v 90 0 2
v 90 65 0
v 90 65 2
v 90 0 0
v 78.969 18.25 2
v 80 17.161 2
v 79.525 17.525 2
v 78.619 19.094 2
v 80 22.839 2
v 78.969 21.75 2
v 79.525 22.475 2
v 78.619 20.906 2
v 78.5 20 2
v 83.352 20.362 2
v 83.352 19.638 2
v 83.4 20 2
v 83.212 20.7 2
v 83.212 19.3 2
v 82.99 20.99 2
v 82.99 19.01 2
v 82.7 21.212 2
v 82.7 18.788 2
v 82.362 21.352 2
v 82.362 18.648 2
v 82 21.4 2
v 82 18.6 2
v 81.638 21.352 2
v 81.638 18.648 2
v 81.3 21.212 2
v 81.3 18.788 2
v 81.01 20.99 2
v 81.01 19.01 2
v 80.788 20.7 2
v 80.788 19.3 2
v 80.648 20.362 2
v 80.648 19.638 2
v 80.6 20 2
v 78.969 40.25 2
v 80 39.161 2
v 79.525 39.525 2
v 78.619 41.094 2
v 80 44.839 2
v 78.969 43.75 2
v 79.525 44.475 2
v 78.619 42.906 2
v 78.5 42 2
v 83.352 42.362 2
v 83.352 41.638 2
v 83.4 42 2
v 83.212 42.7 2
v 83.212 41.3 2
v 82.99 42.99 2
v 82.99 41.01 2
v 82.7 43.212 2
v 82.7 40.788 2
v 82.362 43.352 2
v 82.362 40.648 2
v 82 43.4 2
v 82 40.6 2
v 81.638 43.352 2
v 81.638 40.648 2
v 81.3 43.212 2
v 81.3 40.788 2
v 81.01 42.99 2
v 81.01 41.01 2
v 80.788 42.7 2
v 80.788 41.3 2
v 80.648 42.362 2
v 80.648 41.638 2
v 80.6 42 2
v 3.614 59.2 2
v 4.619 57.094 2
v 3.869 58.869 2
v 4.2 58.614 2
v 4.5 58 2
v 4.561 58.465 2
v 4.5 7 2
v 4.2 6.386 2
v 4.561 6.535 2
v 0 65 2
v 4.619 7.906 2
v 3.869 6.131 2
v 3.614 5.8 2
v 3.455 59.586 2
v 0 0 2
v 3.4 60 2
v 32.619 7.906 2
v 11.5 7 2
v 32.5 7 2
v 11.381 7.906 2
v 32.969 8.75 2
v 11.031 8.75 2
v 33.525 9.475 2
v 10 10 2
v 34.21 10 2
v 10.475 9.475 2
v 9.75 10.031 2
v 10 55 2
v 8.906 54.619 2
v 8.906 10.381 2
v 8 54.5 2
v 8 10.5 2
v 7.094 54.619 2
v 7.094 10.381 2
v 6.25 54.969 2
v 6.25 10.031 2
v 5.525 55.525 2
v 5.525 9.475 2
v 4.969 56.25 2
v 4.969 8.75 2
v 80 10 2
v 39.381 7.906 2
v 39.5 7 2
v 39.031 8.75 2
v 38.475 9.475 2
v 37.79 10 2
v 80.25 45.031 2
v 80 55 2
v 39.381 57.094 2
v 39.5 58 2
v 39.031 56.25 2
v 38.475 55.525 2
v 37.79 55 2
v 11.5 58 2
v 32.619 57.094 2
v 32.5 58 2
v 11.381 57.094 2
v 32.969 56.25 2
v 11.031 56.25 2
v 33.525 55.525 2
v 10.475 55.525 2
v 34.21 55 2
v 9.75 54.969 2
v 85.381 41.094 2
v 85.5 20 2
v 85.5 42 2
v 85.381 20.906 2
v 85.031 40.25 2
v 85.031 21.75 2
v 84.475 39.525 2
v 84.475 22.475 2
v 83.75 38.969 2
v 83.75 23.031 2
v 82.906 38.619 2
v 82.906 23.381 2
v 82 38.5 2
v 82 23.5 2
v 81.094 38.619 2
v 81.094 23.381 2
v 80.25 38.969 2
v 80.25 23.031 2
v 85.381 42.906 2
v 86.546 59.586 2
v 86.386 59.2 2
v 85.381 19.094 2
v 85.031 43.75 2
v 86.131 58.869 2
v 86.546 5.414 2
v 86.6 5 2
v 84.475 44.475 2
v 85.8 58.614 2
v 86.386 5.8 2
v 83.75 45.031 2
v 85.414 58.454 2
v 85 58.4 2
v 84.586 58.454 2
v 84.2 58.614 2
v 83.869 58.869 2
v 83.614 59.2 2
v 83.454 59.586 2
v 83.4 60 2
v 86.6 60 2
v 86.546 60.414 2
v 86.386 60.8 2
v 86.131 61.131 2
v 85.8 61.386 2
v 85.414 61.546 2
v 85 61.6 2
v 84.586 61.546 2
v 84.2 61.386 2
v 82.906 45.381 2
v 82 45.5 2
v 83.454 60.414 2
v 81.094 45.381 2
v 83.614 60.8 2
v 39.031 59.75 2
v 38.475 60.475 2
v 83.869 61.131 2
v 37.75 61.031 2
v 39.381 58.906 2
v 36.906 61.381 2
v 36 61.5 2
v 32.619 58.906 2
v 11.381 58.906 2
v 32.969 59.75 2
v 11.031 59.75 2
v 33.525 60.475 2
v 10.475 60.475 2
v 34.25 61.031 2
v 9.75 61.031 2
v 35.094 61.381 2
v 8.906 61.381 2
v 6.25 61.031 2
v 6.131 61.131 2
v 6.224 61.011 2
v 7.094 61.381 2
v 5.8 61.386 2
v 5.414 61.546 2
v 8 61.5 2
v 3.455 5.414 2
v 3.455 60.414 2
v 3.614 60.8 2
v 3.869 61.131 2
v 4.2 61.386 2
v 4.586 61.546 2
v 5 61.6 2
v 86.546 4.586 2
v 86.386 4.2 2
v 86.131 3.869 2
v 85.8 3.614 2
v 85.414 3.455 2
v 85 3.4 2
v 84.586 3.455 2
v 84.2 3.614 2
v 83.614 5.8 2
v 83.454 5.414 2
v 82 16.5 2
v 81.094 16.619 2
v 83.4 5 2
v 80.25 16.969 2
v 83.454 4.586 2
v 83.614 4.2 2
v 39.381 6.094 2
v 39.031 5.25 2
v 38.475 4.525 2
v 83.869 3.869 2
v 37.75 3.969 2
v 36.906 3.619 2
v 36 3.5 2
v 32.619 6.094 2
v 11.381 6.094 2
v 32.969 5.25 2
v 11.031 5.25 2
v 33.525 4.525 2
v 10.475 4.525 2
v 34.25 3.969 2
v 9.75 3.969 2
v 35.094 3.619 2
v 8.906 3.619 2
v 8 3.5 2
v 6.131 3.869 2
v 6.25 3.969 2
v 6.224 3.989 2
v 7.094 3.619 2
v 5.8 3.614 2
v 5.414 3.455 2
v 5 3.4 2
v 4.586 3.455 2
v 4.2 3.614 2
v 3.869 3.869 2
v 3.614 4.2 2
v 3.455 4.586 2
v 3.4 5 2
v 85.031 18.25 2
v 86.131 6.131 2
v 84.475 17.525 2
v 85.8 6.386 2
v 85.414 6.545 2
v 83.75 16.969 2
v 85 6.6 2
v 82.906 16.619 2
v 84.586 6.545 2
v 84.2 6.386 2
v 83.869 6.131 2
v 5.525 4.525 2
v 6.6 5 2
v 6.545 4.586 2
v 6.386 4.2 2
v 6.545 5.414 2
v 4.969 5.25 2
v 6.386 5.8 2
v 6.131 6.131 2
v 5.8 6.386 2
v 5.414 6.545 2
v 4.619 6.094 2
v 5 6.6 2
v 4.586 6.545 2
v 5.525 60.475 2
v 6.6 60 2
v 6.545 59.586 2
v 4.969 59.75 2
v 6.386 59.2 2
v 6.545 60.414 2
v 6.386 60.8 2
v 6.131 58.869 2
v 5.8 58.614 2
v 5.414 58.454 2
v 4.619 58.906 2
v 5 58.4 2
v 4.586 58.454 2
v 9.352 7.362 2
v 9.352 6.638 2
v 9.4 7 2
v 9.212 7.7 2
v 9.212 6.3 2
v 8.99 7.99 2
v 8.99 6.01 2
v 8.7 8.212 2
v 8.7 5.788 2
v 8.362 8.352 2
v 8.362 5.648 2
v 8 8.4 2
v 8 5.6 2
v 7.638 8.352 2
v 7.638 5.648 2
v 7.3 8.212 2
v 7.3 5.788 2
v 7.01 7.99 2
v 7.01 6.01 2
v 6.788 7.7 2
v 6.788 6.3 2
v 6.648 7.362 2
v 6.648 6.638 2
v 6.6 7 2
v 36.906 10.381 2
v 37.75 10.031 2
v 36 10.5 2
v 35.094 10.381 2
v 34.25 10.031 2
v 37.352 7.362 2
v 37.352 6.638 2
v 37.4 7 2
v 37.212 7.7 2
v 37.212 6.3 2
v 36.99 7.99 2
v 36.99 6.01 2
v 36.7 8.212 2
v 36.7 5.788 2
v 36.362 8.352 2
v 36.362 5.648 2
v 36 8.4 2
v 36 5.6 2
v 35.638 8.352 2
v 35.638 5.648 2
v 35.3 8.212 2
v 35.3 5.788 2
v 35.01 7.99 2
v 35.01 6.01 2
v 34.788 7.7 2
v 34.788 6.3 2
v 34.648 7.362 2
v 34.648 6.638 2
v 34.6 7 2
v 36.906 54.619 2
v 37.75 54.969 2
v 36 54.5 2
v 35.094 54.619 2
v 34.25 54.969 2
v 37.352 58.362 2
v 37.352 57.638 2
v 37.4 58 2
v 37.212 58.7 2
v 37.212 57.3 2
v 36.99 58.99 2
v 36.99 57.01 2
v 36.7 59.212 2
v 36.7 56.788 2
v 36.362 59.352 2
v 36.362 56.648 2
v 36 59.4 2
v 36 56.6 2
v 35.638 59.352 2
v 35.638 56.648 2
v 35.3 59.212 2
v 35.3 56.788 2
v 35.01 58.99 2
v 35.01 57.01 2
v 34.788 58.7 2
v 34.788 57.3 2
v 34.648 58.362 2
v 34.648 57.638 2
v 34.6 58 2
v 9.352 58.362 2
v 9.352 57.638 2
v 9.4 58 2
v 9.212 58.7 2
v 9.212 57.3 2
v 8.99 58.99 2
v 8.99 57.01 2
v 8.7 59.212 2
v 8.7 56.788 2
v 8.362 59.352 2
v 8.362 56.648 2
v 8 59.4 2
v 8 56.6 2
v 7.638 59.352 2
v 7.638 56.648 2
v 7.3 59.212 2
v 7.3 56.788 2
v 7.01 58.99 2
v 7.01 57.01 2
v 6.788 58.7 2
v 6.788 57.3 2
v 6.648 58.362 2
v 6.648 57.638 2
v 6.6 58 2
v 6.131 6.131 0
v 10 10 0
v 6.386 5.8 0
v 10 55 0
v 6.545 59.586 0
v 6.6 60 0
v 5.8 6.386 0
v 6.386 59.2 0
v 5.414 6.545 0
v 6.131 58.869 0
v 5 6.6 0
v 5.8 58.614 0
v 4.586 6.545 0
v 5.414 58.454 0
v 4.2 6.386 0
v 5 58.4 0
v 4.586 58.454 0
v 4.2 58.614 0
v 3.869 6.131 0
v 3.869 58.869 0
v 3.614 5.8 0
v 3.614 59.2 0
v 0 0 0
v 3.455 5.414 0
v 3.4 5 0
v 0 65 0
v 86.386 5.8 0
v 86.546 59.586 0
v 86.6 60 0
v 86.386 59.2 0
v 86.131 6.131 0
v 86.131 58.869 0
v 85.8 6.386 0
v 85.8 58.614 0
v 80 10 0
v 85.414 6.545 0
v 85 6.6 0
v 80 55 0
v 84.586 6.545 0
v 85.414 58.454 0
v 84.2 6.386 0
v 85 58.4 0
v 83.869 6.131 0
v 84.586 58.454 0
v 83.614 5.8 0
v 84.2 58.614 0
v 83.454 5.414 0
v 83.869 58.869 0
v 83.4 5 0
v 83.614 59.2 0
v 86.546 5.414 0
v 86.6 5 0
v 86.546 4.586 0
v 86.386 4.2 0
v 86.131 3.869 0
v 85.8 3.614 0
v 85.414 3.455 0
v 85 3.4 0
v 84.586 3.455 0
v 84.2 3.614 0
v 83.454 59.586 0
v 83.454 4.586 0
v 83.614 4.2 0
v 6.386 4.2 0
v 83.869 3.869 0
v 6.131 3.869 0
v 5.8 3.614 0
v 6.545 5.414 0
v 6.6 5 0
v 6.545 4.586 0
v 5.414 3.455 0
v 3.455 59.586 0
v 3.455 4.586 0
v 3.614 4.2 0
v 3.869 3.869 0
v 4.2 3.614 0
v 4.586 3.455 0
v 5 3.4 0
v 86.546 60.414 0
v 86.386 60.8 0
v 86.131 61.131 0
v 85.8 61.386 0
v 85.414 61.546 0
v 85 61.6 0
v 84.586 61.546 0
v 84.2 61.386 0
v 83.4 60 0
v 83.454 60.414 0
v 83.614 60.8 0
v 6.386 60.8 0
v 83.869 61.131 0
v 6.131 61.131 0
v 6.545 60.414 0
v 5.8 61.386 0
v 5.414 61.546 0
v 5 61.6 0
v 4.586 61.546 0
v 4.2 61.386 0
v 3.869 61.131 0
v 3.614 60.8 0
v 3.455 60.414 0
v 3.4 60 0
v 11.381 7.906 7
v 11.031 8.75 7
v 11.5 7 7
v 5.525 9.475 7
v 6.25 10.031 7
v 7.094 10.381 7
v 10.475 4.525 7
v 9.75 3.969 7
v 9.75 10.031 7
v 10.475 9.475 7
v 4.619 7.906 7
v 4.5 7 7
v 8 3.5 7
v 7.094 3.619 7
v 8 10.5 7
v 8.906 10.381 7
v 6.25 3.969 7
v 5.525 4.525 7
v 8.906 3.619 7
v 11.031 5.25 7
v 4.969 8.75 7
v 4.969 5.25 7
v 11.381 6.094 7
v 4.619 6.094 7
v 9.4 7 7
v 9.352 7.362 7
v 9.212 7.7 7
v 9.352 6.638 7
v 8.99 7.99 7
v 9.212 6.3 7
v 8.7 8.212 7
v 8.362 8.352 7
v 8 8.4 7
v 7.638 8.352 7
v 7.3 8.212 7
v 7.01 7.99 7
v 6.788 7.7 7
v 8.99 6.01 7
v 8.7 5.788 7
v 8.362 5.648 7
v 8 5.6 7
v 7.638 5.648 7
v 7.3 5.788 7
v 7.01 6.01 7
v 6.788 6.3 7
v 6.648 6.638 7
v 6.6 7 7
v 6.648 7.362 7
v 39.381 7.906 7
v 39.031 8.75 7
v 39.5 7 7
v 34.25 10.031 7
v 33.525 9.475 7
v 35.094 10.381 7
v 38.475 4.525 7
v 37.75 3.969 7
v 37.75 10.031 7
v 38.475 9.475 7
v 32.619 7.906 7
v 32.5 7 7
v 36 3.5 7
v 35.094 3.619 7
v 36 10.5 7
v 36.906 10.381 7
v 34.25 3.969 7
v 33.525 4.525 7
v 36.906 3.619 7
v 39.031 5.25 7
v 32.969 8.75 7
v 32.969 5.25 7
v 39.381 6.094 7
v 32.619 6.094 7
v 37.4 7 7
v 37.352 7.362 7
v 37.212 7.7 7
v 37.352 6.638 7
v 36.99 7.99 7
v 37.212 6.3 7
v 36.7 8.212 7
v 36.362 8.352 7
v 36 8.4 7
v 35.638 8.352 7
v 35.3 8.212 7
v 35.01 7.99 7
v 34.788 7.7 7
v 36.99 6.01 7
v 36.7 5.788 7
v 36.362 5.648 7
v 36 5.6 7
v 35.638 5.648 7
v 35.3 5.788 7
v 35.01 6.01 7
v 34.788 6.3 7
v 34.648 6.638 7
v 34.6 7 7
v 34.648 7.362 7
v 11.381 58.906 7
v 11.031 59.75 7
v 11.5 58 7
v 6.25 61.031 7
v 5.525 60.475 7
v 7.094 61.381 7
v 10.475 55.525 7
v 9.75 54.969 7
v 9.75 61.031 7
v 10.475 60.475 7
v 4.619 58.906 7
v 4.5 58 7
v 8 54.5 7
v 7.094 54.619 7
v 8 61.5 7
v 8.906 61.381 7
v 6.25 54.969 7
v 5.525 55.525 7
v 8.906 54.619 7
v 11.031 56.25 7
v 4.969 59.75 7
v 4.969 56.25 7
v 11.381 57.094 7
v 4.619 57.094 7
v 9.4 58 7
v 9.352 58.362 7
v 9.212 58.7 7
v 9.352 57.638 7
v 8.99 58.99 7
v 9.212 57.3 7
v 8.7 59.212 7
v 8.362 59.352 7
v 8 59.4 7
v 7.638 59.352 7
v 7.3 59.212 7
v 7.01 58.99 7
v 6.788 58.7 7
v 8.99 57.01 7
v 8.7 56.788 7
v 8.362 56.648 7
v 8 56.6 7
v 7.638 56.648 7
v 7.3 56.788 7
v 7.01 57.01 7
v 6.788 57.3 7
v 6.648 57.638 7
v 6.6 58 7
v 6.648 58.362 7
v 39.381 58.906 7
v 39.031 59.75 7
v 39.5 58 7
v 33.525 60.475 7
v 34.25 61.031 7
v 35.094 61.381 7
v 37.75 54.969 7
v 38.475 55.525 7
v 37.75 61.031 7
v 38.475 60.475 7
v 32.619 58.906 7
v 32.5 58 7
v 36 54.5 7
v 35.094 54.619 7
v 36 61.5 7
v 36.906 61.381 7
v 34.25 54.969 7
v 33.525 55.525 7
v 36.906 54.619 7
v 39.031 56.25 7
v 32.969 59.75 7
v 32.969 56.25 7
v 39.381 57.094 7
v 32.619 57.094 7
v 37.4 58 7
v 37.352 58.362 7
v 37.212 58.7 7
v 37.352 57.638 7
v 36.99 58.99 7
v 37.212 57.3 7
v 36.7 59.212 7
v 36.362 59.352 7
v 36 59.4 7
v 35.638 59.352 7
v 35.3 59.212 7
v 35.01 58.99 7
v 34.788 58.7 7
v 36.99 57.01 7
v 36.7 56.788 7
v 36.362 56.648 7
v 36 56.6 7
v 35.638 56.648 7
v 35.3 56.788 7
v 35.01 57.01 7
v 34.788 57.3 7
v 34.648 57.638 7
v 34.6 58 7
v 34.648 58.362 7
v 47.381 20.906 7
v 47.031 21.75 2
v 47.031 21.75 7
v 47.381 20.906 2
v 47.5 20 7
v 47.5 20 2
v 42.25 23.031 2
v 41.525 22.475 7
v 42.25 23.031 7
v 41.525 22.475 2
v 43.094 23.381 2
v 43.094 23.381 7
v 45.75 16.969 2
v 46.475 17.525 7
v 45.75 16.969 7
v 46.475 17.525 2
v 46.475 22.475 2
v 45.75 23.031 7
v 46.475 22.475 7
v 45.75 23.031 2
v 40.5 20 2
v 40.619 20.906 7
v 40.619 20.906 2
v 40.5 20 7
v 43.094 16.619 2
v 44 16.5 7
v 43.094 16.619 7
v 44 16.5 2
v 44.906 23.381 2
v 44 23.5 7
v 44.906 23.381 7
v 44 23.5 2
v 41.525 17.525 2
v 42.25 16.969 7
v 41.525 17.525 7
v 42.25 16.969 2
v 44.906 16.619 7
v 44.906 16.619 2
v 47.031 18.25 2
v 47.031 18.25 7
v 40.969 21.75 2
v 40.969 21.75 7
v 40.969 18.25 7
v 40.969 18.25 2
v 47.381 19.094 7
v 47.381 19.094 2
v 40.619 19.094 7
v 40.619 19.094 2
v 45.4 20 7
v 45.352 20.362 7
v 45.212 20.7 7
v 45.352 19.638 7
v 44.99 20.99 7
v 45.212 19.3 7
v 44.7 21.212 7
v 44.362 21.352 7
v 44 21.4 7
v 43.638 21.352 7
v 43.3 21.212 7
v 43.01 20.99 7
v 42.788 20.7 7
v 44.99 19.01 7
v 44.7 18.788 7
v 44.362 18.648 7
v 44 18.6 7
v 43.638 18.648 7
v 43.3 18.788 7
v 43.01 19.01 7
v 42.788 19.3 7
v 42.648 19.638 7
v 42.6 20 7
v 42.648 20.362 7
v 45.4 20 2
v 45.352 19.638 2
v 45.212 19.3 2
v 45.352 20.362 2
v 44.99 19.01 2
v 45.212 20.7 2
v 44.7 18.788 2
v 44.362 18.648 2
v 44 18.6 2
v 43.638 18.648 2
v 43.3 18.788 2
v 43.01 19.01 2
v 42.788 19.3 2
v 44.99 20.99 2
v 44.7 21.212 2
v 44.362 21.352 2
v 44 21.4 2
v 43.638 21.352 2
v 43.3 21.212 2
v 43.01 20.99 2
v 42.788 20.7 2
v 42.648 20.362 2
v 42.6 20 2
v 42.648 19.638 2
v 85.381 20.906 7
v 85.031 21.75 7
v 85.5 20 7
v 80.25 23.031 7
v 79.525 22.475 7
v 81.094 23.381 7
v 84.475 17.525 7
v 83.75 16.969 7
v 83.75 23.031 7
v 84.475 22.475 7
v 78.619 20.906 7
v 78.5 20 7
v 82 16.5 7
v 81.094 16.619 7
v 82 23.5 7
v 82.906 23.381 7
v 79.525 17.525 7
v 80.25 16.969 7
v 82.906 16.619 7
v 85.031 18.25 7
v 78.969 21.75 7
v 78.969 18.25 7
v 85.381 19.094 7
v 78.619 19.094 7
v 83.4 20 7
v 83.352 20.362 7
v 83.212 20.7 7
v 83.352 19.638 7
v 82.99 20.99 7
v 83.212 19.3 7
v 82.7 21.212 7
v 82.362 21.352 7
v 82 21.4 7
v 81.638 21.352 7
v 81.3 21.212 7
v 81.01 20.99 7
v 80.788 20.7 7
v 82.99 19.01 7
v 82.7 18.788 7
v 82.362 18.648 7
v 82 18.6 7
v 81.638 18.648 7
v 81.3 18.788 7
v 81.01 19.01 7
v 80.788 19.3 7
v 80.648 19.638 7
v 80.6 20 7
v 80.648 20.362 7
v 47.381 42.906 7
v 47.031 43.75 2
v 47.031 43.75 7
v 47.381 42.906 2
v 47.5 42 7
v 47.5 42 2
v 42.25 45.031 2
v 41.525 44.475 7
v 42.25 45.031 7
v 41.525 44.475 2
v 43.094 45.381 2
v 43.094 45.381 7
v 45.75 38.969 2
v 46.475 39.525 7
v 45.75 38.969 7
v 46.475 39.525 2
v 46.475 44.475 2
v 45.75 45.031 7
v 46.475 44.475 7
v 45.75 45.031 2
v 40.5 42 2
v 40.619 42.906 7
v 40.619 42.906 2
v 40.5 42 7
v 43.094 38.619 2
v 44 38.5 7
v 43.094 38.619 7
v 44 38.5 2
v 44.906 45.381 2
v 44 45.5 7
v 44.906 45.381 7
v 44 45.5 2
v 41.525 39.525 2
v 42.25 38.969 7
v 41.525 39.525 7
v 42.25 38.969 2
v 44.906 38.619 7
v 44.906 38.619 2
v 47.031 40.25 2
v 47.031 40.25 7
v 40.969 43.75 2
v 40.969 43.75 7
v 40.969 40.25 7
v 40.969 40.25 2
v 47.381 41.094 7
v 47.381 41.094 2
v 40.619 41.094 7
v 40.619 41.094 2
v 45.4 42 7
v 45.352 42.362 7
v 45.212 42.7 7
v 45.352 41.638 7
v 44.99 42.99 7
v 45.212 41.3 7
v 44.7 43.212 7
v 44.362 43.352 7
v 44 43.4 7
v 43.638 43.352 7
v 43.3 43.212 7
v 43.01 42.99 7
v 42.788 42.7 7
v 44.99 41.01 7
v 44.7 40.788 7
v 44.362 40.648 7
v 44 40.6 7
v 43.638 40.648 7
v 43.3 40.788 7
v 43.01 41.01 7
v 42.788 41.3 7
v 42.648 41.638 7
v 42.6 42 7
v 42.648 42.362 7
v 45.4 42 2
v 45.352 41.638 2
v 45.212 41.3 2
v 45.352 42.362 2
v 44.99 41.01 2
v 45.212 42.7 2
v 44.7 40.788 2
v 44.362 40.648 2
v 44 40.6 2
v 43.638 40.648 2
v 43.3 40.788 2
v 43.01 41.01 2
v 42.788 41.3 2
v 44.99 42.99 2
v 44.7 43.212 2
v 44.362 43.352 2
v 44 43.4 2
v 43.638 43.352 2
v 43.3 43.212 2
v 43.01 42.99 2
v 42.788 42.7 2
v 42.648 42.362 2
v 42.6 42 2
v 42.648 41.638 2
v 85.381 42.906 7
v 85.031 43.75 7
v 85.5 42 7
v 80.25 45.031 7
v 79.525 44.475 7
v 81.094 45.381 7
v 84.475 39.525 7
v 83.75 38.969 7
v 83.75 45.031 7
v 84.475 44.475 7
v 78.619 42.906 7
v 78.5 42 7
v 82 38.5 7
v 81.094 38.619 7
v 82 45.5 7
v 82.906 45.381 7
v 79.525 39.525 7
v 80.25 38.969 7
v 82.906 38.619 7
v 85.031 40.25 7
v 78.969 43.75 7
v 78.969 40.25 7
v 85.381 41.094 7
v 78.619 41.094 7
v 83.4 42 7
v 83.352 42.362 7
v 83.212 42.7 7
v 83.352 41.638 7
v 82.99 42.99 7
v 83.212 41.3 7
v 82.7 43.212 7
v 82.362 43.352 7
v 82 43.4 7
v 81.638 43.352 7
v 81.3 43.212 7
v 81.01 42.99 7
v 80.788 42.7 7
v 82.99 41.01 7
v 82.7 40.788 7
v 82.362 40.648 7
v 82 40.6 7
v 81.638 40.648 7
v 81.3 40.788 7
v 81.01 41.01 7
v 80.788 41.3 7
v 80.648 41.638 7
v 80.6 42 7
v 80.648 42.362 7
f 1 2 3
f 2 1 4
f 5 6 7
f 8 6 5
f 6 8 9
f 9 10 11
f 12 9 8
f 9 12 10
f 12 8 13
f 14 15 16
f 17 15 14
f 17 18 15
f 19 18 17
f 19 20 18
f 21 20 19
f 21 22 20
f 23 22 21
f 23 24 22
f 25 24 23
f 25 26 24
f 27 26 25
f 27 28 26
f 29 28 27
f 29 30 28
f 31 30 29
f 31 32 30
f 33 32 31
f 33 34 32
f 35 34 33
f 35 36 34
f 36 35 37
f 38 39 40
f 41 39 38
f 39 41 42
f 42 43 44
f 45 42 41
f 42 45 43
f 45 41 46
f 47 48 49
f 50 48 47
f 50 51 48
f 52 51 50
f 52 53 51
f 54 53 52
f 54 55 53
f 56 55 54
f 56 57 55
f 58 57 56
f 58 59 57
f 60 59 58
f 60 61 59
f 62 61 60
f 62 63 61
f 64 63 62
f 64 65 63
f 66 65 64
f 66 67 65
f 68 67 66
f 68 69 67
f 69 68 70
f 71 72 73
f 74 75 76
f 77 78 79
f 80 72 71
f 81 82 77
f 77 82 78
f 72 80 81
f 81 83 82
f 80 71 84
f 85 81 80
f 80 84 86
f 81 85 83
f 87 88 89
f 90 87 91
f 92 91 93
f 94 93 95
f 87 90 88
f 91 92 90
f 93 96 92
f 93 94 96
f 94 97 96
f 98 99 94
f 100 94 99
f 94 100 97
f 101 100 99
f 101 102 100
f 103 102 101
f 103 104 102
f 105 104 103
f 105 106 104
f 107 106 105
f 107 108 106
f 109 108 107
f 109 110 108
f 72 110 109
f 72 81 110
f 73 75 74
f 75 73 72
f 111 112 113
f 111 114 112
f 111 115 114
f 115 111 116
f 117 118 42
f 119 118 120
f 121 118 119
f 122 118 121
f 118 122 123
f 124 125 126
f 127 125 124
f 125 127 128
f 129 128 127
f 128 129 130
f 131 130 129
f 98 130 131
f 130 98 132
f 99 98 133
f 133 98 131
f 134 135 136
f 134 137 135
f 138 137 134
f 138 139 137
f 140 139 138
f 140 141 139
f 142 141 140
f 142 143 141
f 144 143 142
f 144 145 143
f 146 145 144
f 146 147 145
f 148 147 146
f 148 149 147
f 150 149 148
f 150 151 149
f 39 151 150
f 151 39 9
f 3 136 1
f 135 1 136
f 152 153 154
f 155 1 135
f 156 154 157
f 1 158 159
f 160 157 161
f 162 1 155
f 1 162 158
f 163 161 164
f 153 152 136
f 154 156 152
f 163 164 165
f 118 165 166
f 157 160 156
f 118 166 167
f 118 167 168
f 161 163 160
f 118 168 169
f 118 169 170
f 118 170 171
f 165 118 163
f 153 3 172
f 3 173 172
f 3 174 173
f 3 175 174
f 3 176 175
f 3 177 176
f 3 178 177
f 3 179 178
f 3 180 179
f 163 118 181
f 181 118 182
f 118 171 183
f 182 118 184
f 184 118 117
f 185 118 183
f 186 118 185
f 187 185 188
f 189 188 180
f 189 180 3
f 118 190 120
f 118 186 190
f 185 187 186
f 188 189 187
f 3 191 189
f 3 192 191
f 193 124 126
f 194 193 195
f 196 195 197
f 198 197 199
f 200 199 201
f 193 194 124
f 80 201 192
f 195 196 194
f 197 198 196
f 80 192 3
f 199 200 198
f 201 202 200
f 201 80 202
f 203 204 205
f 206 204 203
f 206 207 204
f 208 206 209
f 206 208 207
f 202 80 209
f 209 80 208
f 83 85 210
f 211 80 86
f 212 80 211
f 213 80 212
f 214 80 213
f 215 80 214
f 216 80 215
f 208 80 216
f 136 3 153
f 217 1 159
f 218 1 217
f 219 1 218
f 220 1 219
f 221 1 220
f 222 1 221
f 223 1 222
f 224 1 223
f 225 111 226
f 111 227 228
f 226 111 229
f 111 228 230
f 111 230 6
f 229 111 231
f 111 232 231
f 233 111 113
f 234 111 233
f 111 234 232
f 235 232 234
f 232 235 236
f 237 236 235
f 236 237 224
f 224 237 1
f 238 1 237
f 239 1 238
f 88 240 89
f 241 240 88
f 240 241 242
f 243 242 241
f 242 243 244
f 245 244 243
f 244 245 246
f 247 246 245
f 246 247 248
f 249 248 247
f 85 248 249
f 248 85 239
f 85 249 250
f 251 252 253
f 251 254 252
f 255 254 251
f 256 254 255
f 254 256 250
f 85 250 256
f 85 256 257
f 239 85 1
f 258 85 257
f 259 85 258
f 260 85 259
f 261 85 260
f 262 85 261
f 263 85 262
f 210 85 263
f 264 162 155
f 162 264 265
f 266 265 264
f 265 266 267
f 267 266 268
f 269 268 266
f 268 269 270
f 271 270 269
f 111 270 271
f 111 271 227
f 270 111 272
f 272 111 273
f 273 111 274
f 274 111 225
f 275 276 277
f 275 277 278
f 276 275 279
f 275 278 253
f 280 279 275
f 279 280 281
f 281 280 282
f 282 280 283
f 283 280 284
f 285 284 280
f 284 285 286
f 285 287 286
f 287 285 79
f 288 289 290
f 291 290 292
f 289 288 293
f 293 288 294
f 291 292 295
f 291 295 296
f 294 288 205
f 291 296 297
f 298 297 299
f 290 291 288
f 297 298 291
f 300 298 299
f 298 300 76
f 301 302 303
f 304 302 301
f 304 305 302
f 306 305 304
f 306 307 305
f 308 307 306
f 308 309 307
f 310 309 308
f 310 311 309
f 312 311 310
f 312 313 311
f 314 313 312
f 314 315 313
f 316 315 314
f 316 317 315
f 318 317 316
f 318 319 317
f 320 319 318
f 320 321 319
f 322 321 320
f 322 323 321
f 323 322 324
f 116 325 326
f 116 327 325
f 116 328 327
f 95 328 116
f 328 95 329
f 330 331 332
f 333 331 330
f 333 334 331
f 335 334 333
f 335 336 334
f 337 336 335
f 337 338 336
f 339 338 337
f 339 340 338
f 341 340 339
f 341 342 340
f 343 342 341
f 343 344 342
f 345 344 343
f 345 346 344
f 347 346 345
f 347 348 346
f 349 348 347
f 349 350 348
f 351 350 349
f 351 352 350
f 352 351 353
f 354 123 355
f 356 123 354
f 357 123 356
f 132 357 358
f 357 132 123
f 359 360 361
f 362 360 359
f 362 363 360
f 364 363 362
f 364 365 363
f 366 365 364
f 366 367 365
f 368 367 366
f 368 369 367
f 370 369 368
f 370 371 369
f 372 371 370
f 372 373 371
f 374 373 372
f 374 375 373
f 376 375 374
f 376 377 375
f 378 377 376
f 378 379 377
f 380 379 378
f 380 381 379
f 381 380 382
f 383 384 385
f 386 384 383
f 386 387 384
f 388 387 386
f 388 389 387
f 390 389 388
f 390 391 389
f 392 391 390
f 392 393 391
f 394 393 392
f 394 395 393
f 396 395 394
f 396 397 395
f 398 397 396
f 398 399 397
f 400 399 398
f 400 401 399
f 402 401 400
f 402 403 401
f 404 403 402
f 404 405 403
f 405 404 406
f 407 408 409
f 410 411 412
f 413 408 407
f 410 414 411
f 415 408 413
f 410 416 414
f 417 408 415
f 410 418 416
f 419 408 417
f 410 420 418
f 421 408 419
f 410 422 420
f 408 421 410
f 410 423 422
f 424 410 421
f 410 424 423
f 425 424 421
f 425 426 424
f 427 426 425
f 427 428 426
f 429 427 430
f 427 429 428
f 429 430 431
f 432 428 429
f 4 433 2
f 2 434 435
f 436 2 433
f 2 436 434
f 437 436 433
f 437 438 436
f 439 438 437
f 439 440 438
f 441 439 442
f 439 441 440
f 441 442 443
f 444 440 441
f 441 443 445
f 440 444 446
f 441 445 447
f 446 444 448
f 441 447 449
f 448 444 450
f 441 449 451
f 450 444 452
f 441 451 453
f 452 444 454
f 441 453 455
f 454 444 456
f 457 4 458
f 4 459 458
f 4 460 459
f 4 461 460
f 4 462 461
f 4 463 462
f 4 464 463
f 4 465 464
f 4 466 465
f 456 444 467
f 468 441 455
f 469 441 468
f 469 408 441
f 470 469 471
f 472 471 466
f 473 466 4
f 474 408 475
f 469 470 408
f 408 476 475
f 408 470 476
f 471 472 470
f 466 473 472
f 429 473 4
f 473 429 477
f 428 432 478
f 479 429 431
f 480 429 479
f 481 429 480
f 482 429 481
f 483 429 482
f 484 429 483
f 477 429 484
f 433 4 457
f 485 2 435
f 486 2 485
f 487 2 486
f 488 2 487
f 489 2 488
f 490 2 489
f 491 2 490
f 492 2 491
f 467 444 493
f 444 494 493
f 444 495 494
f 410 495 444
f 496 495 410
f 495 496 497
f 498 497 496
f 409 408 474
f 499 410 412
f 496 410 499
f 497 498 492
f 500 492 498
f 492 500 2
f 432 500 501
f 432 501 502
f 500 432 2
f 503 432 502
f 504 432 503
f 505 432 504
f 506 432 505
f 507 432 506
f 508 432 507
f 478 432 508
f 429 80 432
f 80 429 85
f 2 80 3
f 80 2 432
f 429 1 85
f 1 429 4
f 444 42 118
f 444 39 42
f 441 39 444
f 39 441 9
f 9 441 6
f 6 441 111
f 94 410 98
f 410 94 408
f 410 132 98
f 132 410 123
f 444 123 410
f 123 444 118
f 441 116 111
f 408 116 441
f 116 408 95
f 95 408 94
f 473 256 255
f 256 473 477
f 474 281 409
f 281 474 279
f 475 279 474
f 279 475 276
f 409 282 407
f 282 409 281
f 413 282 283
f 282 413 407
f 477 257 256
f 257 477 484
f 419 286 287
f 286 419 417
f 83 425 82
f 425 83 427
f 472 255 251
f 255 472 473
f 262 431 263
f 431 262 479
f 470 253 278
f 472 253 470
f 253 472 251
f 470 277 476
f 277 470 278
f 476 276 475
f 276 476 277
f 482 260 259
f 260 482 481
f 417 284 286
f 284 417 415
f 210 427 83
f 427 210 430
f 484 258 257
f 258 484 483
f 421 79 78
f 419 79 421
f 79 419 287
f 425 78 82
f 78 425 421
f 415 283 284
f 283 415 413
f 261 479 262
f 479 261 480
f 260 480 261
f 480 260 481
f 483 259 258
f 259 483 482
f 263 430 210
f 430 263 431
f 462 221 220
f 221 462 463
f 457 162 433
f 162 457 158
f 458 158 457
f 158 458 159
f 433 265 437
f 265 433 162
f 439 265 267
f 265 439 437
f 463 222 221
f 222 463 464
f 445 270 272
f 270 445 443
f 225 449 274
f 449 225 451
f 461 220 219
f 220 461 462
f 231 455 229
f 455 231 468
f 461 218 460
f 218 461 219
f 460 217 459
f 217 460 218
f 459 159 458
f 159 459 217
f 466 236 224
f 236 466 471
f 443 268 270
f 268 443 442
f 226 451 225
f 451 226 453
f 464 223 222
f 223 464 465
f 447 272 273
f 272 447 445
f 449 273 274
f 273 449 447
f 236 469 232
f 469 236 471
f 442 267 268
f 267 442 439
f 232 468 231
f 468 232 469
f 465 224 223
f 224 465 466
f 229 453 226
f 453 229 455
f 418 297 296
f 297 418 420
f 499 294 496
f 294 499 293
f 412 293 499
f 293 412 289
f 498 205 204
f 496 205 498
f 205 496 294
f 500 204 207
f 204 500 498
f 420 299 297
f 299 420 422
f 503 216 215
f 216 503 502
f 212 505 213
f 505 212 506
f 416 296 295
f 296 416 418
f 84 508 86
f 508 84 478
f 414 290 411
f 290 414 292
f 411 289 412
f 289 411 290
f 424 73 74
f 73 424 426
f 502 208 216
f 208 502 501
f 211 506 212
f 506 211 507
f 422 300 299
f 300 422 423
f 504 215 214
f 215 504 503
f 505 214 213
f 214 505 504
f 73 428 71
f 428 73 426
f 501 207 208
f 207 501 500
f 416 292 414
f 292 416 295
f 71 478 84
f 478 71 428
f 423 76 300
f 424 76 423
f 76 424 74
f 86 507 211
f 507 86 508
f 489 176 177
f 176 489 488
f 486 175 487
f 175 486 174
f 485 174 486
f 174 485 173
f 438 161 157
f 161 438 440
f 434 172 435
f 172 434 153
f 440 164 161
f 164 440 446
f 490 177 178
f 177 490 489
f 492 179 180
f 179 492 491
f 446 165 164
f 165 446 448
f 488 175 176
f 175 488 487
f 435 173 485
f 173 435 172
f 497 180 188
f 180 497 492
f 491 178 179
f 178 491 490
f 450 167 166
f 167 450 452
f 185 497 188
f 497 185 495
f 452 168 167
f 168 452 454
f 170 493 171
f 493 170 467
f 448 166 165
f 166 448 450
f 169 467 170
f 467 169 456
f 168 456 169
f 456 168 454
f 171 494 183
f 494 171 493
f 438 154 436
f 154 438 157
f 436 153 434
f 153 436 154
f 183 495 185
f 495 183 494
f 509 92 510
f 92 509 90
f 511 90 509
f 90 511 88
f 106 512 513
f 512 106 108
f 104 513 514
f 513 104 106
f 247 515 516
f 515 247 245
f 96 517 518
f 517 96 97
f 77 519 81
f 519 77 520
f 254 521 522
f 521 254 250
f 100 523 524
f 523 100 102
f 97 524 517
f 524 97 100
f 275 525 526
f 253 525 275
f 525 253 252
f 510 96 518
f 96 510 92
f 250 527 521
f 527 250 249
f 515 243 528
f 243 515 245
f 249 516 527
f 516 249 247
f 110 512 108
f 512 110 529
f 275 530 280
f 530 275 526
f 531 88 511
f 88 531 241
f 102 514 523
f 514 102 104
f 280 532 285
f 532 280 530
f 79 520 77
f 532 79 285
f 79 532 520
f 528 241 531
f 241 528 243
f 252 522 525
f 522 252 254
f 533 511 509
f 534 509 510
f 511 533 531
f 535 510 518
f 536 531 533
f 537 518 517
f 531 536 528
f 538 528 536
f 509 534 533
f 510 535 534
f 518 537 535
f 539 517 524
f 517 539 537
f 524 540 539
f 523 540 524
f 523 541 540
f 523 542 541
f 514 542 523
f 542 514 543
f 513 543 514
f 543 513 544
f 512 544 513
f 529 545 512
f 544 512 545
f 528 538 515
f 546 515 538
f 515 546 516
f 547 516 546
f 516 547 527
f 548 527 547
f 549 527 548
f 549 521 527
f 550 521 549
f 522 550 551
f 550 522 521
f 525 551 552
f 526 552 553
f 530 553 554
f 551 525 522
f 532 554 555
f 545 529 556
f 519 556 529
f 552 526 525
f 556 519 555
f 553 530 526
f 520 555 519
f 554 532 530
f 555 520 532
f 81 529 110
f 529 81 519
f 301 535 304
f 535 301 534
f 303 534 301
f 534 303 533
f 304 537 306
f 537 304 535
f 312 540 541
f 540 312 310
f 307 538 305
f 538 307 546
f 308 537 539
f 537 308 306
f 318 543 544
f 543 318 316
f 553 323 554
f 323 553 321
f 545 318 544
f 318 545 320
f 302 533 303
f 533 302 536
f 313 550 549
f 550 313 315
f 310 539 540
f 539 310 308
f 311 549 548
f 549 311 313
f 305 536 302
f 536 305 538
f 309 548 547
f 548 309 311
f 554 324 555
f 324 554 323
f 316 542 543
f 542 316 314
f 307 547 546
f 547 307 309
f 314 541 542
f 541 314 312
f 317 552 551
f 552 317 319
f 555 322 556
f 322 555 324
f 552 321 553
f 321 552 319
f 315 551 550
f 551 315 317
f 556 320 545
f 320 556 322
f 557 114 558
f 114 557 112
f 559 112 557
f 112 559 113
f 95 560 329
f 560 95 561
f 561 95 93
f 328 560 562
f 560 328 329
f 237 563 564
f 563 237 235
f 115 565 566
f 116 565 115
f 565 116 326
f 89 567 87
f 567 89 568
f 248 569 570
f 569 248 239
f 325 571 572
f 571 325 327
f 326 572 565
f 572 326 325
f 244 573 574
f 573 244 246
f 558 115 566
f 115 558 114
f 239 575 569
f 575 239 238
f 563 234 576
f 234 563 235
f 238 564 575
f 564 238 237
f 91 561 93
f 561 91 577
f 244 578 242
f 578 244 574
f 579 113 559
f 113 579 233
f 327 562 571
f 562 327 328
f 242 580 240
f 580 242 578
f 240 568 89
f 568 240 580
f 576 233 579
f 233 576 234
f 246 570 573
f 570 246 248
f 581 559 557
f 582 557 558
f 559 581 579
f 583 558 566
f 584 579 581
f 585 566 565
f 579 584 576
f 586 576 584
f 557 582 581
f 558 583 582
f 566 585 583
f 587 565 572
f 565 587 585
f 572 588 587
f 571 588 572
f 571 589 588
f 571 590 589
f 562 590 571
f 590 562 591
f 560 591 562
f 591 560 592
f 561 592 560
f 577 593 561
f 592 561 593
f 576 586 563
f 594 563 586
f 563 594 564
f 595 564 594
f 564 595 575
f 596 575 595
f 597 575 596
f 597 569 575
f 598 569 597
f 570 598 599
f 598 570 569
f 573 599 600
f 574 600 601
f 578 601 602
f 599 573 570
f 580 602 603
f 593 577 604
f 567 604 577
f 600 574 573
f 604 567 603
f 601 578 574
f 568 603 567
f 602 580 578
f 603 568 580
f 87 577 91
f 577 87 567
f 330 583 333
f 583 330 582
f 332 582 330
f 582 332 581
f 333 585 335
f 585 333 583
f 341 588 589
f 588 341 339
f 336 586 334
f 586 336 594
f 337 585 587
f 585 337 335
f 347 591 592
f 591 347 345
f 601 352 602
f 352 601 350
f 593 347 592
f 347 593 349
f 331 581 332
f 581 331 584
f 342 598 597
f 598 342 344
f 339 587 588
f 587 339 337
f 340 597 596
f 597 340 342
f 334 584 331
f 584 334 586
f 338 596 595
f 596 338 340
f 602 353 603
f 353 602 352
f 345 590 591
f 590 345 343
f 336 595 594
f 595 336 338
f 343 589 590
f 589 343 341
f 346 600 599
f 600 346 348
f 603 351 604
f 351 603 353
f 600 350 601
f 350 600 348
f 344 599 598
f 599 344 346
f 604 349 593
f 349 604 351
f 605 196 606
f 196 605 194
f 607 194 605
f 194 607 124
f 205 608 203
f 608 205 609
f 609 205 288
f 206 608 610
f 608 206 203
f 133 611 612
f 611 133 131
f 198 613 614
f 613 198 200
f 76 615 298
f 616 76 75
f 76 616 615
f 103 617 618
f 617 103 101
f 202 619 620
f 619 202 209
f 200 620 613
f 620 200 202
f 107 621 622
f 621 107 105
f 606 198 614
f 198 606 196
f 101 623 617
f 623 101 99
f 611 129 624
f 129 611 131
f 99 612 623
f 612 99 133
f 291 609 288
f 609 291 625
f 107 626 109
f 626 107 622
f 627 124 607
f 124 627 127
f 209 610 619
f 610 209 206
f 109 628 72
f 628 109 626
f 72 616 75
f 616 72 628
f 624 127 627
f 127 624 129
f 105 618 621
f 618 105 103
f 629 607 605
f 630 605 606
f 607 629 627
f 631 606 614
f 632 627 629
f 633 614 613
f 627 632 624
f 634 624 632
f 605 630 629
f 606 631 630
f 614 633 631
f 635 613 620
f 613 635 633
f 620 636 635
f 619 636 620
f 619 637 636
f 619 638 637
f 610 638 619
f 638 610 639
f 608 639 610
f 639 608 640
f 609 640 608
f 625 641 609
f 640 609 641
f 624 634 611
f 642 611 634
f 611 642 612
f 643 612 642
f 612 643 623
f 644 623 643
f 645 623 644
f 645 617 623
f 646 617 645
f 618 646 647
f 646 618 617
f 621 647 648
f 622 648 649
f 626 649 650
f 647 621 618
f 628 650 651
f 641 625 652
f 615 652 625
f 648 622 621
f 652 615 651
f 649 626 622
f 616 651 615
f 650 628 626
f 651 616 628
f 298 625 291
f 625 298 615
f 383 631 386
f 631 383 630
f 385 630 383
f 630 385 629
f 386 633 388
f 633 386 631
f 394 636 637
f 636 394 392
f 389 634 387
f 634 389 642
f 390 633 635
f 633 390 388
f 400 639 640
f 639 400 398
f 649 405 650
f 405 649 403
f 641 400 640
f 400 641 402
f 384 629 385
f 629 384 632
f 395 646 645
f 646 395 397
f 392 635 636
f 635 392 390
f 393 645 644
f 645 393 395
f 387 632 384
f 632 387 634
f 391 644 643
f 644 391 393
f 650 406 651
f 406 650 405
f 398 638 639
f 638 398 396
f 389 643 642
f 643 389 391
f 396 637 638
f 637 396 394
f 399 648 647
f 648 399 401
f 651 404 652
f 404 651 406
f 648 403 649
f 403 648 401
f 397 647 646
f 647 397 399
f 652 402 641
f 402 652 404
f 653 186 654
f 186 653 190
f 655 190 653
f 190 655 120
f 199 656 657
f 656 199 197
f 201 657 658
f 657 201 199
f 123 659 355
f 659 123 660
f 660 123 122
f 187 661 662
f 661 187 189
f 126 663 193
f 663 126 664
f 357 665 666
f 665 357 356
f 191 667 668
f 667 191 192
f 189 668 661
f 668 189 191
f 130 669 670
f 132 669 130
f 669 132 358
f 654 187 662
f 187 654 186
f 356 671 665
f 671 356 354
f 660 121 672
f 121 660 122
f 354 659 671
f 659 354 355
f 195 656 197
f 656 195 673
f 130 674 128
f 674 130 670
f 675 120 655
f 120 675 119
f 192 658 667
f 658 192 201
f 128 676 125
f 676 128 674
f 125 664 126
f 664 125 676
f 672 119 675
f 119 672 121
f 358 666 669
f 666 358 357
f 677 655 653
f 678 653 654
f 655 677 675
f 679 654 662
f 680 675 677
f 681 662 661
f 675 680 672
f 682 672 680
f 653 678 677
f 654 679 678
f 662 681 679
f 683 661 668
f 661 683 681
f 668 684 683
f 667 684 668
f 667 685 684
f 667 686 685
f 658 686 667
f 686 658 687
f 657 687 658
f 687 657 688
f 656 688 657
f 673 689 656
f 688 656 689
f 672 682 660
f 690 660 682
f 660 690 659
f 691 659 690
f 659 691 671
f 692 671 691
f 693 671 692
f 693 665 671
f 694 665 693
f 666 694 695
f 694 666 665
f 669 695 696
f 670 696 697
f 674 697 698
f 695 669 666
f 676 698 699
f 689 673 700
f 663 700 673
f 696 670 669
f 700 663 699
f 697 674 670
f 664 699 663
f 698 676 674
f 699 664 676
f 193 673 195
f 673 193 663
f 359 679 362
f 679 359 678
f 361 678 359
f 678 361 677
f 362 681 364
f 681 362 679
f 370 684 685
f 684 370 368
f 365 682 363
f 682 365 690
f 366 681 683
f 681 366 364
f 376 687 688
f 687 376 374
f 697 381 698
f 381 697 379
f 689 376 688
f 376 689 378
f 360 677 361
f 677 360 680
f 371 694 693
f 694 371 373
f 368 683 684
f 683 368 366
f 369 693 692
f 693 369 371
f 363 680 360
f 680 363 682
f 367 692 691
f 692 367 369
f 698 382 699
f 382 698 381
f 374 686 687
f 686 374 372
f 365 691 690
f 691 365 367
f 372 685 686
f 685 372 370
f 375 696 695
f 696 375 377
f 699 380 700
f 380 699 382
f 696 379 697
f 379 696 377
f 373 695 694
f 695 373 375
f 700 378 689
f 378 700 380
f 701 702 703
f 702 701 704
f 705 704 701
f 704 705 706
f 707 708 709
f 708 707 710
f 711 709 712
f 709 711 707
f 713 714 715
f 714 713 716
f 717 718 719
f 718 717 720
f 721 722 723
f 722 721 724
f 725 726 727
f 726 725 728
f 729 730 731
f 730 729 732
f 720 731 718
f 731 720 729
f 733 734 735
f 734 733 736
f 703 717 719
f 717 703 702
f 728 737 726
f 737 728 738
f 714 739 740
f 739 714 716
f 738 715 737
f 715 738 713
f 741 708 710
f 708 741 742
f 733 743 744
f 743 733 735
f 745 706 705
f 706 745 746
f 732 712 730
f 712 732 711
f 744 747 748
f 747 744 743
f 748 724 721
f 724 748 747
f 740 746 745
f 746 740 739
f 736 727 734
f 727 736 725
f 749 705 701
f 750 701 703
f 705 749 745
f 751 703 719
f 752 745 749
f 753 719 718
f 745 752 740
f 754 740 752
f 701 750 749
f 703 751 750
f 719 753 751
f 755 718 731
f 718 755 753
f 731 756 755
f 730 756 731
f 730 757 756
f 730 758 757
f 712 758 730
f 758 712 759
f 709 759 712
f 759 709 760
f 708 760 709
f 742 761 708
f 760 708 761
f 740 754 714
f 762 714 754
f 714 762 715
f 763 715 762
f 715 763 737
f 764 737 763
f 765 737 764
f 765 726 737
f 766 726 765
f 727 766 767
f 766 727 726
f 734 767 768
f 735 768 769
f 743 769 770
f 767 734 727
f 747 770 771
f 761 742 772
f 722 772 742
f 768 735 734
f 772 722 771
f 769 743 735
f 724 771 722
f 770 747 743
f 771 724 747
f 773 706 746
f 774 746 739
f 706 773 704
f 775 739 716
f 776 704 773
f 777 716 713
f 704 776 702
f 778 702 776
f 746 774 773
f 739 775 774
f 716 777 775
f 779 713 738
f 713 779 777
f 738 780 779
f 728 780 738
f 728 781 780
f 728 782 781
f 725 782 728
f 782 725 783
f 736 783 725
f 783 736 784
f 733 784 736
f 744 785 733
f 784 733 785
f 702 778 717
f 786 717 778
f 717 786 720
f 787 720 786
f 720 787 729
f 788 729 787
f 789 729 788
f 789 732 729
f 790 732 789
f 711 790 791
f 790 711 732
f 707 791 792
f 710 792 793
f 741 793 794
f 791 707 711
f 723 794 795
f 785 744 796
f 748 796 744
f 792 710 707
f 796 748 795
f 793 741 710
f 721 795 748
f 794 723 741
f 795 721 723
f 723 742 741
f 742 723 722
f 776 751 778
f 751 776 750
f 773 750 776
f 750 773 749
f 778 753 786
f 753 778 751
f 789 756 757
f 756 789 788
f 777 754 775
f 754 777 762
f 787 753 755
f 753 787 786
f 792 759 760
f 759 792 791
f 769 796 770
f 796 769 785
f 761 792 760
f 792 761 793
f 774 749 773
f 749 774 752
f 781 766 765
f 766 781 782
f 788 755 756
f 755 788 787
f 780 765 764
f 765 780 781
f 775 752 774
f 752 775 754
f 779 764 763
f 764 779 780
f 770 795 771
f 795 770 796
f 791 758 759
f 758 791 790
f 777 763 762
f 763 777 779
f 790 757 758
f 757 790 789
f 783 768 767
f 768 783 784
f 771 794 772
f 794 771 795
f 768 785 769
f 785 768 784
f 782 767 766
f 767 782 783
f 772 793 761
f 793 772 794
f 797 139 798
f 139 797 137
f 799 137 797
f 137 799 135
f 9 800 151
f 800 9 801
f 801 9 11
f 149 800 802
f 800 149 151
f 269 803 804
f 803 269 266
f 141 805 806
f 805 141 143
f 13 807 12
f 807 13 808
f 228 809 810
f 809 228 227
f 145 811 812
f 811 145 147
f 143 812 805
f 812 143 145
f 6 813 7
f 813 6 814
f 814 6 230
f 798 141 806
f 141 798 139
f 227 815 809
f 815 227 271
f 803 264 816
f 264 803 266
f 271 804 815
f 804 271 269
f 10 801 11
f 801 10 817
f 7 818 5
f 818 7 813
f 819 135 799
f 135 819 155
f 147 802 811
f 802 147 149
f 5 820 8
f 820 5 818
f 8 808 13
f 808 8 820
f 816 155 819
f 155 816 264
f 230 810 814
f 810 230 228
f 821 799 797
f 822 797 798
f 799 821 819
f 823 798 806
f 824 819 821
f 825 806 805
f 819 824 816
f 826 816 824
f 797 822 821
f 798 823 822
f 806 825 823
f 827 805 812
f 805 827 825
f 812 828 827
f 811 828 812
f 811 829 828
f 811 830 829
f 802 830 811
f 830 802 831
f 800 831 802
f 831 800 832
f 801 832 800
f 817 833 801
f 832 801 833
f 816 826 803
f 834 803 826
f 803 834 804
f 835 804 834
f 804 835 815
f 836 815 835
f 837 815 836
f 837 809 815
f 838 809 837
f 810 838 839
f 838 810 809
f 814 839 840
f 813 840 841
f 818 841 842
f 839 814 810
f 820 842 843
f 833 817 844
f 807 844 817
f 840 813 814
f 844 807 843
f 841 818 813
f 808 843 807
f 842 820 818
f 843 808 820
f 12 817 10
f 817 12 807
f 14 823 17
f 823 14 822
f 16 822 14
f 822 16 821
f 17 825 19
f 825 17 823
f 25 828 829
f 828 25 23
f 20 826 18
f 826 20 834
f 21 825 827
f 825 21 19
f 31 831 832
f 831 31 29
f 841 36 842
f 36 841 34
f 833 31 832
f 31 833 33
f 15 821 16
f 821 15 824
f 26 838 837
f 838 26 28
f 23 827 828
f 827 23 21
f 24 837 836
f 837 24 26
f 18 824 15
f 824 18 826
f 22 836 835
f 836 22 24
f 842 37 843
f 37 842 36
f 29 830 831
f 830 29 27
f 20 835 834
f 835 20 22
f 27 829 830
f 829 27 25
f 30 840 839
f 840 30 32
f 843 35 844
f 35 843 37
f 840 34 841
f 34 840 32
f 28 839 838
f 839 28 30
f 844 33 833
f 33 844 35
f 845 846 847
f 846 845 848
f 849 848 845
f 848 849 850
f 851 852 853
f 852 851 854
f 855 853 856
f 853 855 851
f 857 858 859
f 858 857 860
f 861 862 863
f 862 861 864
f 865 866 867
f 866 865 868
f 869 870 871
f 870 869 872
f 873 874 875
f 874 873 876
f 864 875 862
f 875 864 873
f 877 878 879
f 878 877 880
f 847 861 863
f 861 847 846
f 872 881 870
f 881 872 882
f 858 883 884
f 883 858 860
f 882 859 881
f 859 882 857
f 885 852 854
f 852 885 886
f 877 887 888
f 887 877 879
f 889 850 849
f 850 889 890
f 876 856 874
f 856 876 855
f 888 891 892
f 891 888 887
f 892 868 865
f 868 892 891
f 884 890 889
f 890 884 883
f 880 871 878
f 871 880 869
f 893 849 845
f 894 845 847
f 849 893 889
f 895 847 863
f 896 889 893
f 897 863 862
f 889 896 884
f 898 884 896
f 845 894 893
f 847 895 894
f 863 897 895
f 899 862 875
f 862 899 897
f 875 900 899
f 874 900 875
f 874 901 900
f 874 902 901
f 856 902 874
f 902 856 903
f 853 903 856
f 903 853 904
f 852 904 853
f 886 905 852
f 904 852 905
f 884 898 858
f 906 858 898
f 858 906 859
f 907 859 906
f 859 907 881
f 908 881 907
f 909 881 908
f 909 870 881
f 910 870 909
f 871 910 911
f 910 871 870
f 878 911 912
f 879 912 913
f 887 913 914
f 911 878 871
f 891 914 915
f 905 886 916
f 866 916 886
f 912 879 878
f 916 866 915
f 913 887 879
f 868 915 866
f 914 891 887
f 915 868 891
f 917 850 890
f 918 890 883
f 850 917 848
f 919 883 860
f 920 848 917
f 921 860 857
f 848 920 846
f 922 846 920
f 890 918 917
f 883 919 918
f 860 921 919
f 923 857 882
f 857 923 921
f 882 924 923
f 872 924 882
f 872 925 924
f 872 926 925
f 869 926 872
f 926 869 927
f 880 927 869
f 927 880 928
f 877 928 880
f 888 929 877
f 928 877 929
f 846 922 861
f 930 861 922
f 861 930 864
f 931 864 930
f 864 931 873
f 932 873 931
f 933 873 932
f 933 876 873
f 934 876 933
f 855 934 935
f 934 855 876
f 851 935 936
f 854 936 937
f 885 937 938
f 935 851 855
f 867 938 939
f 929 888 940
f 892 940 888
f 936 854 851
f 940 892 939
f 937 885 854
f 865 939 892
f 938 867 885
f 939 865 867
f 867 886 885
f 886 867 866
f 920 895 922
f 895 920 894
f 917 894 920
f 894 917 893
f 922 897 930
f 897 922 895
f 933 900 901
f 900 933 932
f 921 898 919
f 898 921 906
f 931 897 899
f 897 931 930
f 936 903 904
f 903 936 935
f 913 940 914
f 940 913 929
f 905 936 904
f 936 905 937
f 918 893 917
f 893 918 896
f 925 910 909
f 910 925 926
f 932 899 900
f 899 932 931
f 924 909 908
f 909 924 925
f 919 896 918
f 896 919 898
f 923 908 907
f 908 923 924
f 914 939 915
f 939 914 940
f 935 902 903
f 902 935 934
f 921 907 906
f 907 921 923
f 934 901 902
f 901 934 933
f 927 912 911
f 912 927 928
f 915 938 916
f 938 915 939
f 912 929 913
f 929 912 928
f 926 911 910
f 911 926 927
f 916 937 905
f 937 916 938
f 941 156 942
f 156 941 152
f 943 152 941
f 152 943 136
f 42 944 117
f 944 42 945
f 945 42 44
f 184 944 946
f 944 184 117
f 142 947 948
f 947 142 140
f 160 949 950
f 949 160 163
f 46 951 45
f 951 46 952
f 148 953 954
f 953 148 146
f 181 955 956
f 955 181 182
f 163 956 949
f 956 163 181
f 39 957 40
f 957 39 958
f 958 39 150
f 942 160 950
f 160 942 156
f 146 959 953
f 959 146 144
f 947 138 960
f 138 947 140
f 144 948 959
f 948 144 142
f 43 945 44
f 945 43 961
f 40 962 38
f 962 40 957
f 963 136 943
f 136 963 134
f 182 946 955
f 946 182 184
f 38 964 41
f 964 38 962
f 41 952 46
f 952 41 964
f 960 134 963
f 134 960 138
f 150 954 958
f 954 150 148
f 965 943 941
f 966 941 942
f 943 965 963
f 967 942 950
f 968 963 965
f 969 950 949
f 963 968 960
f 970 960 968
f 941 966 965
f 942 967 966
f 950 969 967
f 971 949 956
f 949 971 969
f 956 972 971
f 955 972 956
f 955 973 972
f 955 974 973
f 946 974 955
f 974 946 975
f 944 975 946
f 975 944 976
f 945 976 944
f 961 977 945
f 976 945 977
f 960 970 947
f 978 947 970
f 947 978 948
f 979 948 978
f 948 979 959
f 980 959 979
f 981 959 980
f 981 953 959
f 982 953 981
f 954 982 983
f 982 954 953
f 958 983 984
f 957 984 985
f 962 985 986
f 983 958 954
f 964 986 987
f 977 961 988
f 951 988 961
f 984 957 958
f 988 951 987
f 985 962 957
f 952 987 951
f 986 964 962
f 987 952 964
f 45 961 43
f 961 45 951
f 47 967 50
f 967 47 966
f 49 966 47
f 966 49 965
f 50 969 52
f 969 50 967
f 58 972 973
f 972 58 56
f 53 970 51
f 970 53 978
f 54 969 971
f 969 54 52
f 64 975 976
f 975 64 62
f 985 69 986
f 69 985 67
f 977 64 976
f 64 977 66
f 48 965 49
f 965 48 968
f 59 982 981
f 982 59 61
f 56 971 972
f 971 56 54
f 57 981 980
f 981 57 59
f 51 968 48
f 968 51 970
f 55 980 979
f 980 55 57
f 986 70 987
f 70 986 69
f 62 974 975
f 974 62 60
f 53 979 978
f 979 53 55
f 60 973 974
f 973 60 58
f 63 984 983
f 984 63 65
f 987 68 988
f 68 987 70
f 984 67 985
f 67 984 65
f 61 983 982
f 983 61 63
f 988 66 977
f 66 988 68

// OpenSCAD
// ==============================================================================
// WORDCLOCK ESP32 - OPCION 2: SOPORTE DE ELECTRONICA INDEPENDIENTE
// PIEZA 4: BANDEJA DE MONTAJE PARA ESP32 + MODULO RTC DS1307
// ==============================================================================

tray_w     = 90.0;
tray_h     = 65.0;
tray_thick = 2.0;
standoff_h = 5.0;

module m3_boss(h = 5.0) {
    difference() {
        cylinder(r = 3.5, h = h, $fn = 24);
        translate([0, 0, -0.1]) cylinder(r = 1.4, h = h + 0.2, $fn = 24);
    }
}

module wordclock_electronics_mount() {
    union() {
        difference() {
            cube([tray_w, tray_h, tray_thick]);

            translate([10, 10, -0.1]) {
                cube([tray_w - 20, tray_h - 20, tray_thick + 0.2]);
            }

            translate([5, 5, -0.1])           cylinder(r = 1.6, h = tray_thick + 0.2, $fn = 24);
            translate([tray_w - 5, 5, -0.1])   cylinder(r = 1.6, h = tray_thick + 0.2, $fn = 24);
            translate([5, tray_h - 5, -0.1])  cylinder(r = 1.6, h = tray_thick + 0.2, $fn = 24);
            translate([tray_w - 5, tray_h - 5, -0.1]) cylinder(r = 1.6, h = tray_thick + 0.2, $fn = 24);
        }

        esp32_x = 8;
        esp32_y = 7;
        translate([esp32_x, esp32_y, tray_thick]) {
            m3_boss(standoff_h);
            translate([28, 0, 0])  m3_boss(standoff_h);
            translate([0, 51, 0])  m3_boss(standoff_h);
            translate([28, 51, 0]) m3_boss(standoff_h);
        }

        rtc_x = 44;
        rtc_y = 20;
        translate([rtc_x, rtc_y, tray_thick]) {
            m3_boss(standoff_h);
            translate([38, 0, 0])  m3_boss(standoff_h);
            translate([0, 22, 0])  m3_boss(standoff_h);
            translate([38, 22, 0]) m3_boss(standoff_h);
        }
    }
}

wordclock_electronics_mount();
